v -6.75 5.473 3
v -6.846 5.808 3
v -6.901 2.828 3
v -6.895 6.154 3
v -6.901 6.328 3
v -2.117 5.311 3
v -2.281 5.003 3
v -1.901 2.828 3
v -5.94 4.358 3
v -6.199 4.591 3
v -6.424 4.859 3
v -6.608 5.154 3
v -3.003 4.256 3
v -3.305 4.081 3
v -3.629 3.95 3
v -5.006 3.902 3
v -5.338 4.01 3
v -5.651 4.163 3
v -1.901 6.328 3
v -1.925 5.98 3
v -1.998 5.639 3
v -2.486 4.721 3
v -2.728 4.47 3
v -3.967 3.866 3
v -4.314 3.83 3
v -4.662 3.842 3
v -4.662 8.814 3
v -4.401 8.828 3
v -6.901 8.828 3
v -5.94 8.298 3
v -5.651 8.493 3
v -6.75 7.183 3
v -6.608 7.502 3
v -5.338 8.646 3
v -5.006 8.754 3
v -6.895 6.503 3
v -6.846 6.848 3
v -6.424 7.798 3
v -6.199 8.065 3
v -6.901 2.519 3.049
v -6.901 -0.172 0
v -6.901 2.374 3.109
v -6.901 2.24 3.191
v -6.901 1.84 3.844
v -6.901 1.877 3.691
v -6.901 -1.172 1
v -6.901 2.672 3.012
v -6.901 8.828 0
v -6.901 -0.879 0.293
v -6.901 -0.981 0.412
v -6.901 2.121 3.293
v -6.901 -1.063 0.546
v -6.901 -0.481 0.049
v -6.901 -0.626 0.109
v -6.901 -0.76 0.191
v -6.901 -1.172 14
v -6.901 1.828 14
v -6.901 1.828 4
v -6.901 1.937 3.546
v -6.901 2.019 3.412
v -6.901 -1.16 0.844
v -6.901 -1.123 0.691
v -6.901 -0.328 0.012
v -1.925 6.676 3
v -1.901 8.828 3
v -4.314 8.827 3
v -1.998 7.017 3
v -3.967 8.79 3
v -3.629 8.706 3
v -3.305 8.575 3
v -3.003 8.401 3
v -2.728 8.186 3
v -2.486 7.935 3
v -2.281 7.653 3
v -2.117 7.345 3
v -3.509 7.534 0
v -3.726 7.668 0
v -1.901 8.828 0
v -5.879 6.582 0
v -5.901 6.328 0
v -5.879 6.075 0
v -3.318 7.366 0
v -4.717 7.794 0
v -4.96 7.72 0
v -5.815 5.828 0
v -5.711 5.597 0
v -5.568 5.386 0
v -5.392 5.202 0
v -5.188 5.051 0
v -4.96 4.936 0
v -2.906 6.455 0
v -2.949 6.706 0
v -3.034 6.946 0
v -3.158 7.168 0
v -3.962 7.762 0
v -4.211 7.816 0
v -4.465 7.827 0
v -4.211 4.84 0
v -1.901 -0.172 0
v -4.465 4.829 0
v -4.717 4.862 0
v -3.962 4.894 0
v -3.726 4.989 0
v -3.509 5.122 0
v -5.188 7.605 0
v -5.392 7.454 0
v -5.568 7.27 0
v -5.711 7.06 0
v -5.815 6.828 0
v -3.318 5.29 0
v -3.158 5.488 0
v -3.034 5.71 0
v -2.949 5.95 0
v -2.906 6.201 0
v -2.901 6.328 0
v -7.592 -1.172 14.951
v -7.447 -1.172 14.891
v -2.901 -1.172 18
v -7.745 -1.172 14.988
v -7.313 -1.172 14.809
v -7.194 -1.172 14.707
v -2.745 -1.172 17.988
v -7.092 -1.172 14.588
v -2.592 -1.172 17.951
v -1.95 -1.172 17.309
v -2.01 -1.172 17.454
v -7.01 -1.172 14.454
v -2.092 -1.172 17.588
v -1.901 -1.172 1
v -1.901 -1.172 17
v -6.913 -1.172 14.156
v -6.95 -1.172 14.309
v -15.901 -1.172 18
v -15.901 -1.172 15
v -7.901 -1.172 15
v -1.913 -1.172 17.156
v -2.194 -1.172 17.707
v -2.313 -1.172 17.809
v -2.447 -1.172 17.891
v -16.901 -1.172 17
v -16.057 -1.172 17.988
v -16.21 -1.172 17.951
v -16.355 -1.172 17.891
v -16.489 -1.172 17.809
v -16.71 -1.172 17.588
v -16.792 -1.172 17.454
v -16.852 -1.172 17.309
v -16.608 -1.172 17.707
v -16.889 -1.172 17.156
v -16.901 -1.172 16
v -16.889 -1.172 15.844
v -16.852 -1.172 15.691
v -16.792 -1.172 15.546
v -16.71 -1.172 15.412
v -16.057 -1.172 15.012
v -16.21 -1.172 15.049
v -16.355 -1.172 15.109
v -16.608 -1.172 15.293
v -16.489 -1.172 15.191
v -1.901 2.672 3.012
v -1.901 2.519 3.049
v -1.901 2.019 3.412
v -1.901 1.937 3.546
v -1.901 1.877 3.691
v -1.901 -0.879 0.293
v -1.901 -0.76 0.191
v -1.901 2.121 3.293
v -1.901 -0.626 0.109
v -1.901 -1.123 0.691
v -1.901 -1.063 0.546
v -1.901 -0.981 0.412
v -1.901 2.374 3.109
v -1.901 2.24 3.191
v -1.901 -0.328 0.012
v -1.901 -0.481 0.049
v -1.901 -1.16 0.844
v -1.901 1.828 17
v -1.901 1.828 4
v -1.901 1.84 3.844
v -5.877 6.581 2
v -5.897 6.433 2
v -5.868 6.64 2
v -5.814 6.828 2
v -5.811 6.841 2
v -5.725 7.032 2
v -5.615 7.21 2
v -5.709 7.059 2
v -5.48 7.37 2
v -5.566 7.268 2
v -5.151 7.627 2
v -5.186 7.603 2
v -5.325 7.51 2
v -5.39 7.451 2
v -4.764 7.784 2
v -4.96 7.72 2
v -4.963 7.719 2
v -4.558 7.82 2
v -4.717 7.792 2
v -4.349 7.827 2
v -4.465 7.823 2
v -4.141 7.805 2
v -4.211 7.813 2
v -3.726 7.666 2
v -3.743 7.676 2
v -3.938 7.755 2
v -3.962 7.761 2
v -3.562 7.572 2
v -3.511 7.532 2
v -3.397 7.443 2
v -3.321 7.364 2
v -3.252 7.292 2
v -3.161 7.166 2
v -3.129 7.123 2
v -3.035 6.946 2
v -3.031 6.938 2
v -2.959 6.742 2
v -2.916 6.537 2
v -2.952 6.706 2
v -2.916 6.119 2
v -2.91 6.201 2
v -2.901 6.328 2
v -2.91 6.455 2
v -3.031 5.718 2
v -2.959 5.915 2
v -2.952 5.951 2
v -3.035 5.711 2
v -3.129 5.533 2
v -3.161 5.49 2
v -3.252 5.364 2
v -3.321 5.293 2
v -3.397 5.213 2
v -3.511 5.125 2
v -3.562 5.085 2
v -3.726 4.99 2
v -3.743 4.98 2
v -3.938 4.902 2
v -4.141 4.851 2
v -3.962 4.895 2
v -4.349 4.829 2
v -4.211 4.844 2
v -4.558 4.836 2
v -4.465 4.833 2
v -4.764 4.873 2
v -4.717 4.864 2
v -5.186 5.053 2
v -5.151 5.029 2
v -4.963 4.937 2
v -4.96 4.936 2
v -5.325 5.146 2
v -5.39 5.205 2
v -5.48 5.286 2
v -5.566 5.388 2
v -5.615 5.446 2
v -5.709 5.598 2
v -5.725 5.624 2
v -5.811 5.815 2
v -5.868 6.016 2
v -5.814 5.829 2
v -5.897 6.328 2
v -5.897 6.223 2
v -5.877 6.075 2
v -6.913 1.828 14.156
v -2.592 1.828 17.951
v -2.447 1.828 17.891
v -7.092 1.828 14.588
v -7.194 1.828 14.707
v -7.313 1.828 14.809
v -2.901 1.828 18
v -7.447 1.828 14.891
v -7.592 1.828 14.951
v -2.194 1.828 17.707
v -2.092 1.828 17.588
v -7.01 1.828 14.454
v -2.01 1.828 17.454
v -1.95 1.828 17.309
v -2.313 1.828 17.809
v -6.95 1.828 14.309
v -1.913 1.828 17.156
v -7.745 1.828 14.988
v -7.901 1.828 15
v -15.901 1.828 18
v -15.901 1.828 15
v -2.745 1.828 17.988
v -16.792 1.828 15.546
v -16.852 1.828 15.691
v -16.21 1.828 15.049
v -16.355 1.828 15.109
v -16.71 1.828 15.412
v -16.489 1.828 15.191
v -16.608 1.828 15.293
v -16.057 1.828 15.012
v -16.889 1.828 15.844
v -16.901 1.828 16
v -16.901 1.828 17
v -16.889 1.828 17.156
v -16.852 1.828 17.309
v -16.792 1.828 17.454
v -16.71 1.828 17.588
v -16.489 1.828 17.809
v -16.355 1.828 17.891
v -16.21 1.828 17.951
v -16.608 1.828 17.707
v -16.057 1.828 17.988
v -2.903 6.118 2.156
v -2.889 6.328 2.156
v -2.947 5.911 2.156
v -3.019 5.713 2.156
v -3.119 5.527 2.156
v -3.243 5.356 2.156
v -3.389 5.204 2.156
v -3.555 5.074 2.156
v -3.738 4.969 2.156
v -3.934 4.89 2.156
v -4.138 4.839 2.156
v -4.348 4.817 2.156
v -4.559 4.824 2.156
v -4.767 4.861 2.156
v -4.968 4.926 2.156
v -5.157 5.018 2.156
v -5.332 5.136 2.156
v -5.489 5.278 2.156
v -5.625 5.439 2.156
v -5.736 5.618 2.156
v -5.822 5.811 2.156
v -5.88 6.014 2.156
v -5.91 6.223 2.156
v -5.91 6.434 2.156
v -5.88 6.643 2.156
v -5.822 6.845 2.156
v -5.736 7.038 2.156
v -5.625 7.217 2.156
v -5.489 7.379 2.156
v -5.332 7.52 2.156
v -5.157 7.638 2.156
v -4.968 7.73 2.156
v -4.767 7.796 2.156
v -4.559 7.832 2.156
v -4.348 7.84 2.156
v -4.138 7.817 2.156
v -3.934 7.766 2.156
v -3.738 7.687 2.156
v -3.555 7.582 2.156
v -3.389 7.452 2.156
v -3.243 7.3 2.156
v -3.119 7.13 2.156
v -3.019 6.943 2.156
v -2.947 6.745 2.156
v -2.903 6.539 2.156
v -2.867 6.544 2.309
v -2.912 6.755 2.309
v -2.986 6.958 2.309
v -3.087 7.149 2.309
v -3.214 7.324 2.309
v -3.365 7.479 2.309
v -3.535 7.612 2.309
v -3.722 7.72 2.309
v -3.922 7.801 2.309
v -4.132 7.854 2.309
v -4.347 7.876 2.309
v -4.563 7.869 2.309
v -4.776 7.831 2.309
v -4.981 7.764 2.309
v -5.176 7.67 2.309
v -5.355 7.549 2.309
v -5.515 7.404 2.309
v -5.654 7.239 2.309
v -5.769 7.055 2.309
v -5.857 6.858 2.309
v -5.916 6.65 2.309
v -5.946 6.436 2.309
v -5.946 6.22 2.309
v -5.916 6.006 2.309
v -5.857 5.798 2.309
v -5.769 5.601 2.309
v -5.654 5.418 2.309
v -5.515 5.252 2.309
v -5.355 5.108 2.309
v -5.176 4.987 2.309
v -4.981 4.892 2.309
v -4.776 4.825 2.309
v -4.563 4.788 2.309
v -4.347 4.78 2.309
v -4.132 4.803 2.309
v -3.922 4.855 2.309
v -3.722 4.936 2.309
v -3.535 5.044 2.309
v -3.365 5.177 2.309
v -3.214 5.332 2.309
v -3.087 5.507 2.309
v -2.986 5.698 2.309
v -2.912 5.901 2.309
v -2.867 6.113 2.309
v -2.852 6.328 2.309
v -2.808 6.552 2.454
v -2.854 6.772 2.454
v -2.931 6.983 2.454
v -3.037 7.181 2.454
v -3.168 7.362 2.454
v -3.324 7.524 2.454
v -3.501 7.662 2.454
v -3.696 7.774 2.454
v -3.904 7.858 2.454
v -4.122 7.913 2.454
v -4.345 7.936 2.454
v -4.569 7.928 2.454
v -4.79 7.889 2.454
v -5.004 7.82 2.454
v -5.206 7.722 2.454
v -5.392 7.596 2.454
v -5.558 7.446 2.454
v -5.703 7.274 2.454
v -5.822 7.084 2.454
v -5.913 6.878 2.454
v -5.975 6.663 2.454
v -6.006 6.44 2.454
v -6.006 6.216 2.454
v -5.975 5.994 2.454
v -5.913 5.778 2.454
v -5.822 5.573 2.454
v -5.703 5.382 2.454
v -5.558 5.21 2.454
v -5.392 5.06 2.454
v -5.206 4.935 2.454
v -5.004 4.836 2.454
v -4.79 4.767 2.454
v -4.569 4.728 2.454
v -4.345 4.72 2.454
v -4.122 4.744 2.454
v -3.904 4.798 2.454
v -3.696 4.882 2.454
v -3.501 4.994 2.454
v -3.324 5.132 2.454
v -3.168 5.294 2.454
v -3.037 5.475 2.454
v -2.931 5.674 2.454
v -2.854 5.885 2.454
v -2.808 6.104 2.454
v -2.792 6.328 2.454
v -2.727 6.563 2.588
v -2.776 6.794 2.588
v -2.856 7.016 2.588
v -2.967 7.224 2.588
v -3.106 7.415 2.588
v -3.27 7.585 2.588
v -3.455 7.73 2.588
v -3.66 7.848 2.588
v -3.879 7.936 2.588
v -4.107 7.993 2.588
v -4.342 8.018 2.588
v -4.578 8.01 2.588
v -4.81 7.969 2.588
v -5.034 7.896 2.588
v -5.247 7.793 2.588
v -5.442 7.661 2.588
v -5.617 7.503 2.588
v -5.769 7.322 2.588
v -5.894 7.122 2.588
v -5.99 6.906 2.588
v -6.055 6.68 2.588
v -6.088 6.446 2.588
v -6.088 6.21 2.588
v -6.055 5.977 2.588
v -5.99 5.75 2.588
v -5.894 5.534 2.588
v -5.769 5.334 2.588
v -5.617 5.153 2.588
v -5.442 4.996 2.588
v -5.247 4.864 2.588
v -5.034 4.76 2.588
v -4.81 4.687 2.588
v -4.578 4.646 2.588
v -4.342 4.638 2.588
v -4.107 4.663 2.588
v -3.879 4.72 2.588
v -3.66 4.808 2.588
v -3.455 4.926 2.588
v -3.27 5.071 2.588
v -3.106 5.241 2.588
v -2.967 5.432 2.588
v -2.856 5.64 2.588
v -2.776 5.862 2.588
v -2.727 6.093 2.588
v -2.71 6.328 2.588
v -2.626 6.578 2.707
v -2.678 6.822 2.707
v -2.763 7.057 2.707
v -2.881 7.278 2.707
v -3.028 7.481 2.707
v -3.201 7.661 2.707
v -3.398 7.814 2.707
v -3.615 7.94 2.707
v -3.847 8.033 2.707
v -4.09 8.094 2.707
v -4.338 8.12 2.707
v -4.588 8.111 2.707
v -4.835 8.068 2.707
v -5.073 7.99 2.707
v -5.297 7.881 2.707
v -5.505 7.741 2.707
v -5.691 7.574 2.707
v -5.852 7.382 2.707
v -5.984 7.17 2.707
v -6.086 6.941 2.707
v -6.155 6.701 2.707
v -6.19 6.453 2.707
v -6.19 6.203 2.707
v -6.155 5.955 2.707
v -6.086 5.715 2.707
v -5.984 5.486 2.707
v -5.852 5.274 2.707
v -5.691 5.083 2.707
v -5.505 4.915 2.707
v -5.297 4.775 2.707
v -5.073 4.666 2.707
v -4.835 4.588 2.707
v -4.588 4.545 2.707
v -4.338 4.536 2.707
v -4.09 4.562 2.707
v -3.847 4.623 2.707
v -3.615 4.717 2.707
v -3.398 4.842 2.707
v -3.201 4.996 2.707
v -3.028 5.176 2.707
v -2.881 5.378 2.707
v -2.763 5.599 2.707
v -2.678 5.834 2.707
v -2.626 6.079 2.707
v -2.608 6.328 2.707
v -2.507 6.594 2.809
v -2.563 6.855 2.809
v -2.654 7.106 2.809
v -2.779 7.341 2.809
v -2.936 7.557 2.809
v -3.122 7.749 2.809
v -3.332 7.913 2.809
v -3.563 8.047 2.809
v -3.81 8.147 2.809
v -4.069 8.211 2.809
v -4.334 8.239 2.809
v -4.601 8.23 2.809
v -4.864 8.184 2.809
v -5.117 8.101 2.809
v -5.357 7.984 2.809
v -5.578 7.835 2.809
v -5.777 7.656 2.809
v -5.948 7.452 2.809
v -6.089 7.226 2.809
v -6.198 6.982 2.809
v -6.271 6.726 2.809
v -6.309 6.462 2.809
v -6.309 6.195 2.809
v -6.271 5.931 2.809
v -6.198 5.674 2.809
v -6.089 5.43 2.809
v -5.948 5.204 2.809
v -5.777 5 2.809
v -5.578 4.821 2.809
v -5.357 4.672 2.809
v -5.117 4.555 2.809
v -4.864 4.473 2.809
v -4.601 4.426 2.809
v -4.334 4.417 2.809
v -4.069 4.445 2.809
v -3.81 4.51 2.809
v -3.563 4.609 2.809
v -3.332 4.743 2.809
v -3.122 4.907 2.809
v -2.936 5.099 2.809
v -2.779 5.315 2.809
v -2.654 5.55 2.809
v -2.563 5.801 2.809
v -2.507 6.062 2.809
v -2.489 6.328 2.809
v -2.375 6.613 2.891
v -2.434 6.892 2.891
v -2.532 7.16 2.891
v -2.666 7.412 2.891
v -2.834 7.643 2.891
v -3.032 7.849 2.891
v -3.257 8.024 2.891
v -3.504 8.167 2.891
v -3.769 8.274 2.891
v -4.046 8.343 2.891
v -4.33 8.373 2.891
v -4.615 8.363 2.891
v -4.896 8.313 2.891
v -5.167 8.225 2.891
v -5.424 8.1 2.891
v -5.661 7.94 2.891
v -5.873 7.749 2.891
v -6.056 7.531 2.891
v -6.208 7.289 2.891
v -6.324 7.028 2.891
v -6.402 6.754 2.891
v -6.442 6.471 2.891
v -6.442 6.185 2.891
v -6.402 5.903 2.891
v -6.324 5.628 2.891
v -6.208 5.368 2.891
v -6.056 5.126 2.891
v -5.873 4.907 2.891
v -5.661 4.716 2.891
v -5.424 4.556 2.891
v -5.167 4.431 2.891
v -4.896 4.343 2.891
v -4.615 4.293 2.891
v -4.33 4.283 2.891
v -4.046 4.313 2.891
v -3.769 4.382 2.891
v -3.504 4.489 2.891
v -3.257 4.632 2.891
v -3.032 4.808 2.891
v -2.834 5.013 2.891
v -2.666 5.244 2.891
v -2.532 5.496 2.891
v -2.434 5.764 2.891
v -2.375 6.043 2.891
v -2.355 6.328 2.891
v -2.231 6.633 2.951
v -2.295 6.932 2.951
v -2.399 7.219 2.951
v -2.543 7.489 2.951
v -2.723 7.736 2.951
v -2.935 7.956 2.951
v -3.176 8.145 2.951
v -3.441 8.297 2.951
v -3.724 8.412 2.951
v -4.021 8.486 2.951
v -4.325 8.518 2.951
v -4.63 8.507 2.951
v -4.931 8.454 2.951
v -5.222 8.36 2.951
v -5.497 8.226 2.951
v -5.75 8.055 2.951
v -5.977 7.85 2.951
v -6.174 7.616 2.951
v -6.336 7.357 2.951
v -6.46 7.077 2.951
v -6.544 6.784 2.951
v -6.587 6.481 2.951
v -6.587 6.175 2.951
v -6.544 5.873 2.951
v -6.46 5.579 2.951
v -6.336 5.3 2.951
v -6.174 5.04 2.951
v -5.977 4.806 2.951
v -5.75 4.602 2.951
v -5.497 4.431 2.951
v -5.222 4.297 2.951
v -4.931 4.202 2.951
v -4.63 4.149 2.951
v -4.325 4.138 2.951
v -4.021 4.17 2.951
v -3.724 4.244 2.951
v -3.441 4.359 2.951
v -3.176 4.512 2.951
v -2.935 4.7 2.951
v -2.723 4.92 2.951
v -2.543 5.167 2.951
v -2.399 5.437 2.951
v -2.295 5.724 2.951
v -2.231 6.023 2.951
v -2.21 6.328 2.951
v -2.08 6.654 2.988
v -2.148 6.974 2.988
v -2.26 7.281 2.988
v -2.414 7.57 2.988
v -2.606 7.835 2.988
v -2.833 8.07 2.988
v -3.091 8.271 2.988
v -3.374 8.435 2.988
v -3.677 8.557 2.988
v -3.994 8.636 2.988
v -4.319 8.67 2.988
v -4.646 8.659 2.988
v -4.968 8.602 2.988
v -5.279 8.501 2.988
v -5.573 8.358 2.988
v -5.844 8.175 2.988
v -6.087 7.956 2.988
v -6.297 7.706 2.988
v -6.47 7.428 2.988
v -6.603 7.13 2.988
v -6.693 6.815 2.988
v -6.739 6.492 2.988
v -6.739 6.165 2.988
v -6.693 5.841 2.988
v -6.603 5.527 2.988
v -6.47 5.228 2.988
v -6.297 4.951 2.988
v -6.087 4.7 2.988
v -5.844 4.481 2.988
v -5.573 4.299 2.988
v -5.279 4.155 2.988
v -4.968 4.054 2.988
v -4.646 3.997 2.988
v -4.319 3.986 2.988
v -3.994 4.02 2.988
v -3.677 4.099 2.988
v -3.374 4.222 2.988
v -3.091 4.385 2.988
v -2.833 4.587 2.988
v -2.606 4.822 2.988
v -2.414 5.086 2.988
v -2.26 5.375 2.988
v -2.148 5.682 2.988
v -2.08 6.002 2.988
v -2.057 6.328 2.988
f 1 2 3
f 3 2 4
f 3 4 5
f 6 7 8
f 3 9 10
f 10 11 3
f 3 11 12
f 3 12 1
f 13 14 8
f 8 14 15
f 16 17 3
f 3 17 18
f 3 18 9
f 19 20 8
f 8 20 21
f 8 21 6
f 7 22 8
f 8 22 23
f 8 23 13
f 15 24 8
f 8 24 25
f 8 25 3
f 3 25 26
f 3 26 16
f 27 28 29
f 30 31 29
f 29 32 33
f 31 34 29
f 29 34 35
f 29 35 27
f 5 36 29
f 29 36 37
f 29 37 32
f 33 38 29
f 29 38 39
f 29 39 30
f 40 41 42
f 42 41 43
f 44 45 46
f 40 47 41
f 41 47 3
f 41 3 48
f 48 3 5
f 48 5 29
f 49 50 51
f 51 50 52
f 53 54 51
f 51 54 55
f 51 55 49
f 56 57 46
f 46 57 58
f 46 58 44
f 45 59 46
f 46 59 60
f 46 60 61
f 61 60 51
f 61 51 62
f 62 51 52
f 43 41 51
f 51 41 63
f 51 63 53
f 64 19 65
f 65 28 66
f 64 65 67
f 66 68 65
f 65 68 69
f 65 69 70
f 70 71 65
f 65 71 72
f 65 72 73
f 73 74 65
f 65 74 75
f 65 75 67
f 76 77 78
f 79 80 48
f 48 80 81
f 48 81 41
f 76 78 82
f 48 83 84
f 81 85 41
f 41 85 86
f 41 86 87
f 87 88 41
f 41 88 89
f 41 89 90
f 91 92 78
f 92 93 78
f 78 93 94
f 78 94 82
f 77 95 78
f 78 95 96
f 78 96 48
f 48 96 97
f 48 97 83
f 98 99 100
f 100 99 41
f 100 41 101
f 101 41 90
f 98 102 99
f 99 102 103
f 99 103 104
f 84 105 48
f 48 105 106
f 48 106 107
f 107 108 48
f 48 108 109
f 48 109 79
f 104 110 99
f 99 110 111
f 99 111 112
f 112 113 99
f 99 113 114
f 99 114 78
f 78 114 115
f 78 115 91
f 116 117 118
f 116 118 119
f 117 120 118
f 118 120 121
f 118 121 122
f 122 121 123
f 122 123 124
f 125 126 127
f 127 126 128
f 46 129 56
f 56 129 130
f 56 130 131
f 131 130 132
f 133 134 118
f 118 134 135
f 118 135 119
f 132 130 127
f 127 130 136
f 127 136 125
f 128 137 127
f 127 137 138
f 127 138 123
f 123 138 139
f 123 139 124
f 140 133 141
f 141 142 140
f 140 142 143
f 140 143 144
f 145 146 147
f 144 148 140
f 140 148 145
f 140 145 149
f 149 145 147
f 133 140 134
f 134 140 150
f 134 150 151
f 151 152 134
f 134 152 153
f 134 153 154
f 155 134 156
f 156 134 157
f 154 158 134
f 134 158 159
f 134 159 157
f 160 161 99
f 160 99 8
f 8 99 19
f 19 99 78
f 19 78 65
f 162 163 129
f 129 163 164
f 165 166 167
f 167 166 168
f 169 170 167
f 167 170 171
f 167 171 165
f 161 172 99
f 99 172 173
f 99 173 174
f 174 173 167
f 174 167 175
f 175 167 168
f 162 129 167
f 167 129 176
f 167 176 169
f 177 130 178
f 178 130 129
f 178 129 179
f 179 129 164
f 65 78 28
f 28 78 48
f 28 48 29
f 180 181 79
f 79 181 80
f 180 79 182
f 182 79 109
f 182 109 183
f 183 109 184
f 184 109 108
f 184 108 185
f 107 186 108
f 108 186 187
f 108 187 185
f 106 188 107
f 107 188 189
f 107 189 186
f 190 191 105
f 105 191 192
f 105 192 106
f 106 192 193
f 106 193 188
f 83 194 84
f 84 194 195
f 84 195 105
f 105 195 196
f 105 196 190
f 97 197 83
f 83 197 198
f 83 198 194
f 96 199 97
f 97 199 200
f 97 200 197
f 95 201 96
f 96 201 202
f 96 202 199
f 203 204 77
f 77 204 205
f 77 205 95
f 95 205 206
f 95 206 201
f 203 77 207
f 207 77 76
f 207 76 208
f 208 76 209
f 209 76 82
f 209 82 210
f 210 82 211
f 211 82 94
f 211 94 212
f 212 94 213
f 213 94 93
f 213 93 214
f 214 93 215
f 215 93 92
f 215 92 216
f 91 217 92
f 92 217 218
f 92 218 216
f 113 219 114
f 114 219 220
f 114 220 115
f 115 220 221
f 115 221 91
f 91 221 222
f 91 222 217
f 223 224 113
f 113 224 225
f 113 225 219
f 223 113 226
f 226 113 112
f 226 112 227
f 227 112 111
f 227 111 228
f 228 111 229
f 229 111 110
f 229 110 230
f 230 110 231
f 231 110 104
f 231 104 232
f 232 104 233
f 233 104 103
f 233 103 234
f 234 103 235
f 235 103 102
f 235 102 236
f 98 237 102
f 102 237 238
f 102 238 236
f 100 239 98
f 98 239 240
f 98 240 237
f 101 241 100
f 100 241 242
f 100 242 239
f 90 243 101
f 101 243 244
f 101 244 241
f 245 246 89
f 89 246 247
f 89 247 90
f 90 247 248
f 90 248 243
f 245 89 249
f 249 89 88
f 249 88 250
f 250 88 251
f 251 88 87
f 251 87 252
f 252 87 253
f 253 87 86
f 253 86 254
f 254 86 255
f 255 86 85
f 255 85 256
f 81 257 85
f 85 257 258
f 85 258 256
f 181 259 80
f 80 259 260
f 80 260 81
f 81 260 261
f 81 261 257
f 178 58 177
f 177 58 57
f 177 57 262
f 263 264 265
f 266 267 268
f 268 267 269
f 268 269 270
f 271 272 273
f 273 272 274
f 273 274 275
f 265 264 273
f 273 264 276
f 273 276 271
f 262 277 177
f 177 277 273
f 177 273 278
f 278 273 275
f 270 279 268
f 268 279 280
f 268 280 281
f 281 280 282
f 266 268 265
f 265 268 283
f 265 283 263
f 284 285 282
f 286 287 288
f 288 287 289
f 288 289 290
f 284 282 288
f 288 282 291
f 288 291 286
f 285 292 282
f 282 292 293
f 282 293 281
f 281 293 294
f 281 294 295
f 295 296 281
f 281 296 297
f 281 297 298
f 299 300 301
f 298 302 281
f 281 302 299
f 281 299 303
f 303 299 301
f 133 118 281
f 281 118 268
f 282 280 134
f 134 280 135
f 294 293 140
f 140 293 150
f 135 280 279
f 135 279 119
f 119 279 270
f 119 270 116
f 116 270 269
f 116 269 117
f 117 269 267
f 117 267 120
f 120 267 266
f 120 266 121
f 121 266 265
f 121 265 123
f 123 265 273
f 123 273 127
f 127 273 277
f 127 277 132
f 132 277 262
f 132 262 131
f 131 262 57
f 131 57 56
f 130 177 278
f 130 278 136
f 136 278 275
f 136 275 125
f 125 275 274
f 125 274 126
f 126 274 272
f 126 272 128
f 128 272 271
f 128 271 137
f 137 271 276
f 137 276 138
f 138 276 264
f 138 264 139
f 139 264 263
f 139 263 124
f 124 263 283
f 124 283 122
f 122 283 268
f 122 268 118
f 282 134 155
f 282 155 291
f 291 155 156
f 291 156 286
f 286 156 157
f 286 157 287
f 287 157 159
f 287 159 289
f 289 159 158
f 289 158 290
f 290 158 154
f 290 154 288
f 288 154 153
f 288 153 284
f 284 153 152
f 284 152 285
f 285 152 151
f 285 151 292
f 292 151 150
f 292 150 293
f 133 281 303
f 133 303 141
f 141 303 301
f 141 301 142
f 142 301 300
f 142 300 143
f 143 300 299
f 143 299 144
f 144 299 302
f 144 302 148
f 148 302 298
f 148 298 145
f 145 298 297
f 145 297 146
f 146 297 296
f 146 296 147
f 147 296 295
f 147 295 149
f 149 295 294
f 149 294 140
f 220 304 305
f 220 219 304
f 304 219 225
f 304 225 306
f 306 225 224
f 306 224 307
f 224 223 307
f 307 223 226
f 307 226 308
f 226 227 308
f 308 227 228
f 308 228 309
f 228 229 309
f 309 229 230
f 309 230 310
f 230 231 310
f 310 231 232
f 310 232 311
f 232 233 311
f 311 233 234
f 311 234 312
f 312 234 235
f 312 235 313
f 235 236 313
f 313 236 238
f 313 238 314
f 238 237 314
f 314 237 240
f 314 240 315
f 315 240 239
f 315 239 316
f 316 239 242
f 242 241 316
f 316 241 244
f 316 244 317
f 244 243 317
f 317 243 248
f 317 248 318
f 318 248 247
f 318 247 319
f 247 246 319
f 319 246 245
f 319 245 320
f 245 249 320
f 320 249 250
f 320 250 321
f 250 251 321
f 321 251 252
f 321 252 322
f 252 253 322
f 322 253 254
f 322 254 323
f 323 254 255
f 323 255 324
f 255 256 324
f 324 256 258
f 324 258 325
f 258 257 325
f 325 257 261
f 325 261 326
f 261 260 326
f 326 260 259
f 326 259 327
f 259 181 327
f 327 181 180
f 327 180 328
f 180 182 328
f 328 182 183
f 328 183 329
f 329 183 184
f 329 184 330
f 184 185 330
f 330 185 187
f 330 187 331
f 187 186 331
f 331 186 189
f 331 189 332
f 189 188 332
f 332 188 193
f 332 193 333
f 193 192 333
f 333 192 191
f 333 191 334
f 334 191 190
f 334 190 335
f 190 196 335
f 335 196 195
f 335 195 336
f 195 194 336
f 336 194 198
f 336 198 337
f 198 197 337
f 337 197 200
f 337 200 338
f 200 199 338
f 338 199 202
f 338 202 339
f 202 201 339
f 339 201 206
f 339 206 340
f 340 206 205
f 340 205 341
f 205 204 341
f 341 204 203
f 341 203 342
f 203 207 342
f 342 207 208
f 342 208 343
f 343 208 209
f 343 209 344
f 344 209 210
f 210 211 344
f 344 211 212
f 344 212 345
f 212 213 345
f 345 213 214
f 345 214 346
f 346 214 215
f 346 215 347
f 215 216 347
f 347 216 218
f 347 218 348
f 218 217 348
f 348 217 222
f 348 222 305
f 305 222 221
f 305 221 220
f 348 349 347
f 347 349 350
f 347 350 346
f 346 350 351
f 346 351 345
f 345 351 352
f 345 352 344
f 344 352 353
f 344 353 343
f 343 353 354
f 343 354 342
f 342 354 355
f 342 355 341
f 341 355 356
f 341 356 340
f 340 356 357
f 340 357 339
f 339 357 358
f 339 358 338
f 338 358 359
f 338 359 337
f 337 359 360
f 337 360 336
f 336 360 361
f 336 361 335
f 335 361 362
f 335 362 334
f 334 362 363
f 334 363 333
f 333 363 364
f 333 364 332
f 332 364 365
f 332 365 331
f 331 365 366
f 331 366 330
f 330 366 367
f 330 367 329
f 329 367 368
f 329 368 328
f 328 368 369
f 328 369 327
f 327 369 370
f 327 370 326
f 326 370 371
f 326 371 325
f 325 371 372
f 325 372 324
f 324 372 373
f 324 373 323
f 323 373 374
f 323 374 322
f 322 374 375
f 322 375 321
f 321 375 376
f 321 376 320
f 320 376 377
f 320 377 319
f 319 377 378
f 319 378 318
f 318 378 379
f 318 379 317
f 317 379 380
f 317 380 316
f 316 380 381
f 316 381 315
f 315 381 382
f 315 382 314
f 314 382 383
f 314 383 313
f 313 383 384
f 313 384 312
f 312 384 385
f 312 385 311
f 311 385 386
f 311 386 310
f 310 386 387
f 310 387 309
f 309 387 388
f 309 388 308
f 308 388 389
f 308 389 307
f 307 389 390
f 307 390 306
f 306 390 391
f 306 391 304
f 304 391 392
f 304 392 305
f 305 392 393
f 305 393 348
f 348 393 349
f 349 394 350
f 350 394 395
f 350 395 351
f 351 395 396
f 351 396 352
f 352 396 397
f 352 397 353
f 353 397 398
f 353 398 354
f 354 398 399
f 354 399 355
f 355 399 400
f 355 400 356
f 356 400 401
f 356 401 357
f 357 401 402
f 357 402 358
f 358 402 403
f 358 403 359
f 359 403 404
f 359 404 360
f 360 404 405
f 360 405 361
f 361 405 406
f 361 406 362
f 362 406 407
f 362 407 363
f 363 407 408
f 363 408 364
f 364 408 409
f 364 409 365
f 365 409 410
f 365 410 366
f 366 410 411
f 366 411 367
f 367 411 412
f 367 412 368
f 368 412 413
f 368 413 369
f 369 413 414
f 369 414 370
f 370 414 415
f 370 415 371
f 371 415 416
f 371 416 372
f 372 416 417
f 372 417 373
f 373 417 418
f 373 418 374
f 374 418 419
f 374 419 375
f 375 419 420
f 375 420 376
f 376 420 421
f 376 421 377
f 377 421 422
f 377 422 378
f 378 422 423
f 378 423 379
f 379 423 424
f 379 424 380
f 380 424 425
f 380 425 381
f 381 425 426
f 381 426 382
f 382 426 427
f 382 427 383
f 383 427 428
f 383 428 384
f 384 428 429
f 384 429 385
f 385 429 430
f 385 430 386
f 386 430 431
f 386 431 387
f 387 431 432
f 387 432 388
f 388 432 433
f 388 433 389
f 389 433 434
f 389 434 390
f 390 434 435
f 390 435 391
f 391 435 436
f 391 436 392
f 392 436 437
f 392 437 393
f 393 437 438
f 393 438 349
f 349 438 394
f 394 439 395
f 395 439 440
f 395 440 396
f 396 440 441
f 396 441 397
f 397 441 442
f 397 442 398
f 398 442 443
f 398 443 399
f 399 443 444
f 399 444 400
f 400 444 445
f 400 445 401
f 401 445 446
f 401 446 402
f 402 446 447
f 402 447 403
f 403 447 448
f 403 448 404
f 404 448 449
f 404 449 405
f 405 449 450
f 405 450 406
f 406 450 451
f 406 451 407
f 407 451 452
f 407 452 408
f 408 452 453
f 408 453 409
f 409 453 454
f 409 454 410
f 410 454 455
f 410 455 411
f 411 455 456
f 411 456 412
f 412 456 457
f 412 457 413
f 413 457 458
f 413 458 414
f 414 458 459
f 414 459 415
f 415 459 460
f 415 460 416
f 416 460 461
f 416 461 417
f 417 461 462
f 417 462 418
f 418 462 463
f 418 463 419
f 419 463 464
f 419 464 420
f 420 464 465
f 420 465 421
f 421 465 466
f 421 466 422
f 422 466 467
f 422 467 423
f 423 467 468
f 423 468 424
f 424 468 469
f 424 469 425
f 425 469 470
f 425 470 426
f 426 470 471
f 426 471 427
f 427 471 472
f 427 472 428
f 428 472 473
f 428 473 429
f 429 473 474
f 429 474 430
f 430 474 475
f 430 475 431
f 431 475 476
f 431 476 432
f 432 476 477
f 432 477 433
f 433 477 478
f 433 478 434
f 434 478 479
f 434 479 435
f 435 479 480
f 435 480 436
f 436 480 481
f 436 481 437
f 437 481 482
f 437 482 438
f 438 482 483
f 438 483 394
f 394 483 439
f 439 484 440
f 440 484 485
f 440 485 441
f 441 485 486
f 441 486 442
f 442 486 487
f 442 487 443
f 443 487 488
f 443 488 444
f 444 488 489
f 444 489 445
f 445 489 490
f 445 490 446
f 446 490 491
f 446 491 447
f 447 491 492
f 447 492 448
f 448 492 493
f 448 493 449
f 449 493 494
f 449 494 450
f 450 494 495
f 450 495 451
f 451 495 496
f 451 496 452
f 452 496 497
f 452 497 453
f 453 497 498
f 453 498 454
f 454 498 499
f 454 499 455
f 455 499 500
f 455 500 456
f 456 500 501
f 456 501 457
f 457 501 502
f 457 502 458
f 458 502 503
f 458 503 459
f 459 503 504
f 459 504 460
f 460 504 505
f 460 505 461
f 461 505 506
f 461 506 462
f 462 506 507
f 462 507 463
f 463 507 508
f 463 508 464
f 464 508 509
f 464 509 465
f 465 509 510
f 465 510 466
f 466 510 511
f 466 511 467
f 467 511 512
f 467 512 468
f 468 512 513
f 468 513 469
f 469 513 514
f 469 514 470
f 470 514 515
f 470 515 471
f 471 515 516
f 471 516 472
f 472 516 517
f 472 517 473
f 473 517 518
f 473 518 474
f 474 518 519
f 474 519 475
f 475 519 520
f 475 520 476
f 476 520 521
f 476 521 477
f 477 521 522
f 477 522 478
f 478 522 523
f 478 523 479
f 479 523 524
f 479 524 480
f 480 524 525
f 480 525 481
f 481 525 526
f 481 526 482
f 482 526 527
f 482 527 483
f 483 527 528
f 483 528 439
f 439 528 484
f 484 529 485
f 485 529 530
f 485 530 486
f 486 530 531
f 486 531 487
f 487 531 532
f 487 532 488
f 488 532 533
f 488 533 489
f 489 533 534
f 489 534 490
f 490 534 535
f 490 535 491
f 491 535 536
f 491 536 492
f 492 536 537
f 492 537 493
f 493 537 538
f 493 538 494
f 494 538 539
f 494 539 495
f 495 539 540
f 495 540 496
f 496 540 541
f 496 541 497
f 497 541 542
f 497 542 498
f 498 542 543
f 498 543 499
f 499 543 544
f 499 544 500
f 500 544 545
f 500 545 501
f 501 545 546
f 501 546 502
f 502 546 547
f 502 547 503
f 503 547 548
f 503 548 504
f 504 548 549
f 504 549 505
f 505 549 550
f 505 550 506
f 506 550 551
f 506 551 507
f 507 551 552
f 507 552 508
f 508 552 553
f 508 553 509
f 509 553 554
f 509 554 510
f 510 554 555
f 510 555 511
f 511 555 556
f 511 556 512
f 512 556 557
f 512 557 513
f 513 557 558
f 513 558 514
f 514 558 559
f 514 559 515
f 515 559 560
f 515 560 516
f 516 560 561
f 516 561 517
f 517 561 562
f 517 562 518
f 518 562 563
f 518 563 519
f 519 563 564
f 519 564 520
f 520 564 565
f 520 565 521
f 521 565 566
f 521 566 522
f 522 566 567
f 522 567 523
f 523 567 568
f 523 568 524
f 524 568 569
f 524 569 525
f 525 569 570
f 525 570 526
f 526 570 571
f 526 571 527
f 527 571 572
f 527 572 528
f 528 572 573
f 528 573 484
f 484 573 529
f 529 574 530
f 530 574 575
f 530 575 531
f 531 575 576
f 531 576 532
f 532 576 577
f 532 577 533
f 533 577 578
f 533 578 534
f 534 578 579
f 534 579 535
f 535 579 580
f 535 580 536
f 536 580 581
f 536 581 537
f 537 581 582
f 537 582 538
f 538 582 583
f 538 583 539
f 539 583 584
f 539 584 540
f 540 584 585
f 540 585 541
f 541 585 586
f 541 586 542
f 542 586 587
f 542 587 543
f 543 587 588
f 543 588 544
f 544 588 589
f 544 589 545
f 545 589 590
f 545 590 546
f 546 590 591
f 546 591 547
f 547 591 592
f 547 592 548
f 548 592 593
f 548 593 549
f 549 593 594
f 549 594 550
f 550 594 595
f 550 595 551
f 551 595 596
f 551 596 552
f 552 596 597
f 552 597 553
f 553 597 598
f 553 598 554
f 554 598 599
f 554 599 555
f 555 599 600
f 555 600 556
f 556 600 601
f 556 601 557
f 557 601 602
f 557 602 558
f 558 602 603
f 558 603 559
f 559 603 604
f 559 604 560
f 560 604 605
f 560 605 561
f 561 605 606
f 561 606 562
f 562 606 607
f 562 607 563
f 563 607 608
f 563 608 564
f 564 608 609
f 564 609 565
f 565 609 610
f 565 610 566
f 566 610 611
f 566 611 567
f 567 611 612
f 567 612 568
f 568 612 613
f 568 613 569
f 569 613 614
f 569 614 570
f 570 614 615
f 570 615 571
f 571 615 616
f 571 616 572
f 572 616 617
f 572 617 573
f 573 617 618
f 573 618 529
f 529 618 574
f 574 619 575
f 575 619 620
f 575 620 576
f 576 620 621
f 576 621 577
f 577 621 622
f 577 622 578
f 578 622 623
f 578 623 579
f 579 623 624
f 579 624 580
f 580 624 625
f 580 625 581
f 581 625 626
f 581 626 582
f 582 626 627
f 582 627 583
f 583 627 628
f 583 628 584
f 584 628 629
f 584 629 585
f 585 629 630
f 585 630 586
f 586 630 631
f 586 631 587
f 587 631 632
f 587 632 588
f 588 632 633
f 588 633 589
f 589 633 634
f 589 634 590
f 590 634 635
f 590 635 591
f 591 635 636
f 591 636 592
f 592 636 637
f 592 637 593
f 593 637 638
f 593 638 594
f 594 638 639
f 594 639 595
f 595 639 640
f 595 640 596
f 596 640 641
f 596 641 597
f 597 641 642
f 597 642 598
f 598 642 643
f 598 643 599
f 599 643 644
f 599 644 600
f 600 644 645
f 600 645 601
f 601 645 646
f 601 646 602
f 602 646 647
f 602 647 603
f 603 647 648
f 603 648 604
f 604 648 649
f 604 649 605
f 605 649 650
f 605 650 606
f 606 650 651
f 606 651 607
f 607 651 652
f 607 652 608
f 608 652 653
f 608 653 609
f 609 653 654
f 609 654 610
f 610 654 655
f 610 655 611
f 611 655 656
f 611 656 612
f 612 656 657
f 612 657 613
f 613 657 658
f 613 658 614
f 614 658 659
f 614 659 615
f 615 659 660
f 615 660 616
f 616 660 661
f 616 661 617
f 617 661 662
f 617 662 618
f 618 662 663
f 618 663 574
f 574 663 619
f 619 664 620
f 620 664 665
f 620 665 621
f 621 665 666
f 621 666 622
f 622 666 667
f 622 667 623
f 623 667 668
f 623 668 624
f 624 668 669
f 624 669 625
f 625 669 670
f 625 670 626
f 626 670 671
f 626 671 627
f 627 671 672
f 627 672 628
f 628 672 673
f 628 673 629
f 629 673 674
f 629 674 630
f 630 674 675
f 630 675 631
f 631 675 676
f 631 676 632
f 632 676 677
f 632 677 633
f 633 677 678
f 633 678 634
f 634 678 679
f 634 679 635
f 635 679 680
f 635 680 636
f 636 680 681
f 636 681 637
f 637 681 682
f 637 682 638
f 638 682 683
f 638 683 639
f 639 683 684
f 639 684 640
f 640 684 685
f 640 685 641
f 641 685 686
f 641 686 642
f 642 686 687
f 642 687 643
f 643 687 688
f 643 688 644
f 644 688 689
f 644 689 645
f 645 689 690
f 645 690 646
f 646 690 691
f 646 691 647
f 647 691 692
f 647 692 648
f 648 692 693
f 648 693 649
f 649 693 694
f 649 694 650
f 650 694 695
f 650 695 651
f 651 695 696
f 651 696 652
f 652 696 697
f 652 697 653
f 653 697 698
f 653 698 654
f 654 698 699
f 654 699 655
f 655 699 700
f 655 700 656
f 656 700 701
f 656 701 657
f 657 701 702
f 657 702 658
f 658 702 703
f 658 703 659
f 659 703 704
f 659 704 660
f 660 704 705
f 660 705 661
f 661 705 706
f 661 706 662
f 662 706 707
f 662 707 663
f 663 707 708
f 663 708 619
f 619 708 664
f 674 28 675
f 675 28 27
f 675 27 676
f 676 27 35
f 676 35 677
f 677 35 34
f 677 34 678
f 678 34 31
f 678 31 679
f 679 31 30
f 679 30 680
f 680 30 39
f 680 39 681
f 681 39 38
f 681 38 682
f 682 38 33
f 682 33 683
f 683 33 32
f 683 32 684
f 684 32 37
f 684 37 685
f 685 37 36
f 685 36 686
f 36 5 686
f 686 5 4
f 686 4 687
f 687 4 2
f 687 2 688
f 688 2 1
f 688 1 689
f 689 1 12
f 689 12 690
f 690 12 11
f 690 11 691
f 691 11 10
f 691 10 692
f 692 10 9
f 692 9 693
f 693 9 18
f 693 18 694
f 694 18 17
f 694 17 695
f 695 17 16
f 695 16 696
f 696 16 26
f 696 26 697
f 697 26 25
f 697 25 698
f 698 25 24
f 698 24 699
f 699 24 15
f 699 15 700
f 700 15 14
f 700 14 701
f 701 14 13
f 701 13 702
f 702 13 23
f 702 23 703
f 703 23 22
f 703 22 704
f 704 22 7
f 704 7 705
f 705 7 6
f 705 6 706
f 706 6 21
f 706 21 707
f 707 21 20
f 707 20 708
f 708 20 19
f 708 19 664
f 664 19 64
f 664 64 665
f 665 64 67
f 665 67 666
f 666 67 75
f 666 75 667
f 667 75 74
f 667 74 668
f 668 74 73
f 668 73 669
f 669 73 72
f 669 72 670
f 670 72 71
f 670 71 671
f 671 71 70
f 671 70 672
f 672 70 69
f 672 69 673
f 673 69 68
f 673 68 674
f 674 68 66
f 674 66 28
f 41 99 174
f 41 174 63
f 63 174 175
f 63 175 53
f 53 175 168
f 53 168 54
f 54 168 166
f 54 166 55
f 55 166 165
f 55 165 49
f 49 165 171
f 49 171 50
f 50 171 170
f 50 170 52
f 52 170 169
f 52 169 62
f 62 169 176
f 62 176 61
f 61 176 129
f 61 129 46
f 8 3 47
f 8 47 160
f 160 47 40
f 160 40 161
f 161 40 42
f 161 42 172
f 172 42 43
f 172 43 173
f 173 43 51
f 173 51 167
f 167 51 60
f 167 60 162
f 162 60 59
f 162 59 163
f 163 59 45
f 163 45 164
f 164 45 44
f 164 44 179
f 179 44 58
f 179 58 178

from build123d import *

# Parameters (mm, degrees)
SKETCH1_W           = 5
SKETCH1_H           = 10
SKETCH1_R           = 1.5
BOSS_EXTRUDE1_DEPTH = 3
SKETCH2_W           = 5
SKETCH2_H           = 3
BOSS_EXTRUDE2_DEPTH = 15
SKETCH3_W           = 3
SKETCH3_H           = 3
BOSS_EXTRUDE3_DEPTH = 10
FILLET1_R           = 1
FILLET2_R           = 1
FILLET3_R           = 1
FILLET4_R           = 1
FILLET5_R           = 1
FILLET6_R           = 1
FILLET7_R           = 1


with BuildPart() as part:
    # Sketch1 → Boss-Extrude1 (new body)
    with BuildSketch(Plane.XY):
        with Locations((-4.401041667, 3.828125)):
            Rectangle(SKETCH1_W, SKETCH1_H)
        with Locations((-4.401041667, 6.328125)):
            Circle(SKETCH1_R, mode=Mode.SUBTRACT)
    extrude(amount=BOSS_EXTRUDE1_DEPTH)

    # Sketch2 → Boss-Extrude2 (add)
    with BuildSketch(Plane.XY.offset(3)):
        with Locations((-4.401041667, 0.328125)):
            Rectangle(SKETCH2_W, SKETCH2_H)
    extrude(amount=BOSS_EXTRUDE2_DEPTH)

    # Sketch3 → Boss-Extrude3 (add)
    with BuildSketch(Plane.ZY.offset(6.901041667)):
        with Locations((16.5, 0.328125)):
            Rectangle(SKETCH3_W, SKETCH3_H)
    extrude(amount=BOSS_EXTRUDE3_DEPTH)

    # Fillet1
    fillet1_edges = [part.edges().sort_by_distance(p)[0] for p in [
        (-6.901041667, 0.328125, 15),
    ]]
    fillet(fillet1_edges, radius=FILLET1_R)

    # Fillet2
    fillet2_edges = [part.edges().sort_by_distance(p)[0] for p in [
        (-1.901041667, 0.328125, 18),
    ]]
    fillet(fillet2_edges, radius=FILLET2_R)

    # Fillet3
    fillet3_edges = [part.edges().sort_by_distance(p)[0] for p in [
        (-16.901041667, 0.328125, 15),
    ]]
    fillet(fillet3_edges, radius=FILLET3_R)

    # Fillet4
    fillet4_edges = [part.edges().sort_by_distance(p)[0] for p in [
        (-16.901041667, 0.328125, 18),
    ]]
    fillet(fillet4_edges, radius=FILLET4_R)

    # Fillet5
    fillet5_edges = [part.edges().sort_by_distance(p)[0] for p in [
        (-5.901041667, 6.328125, 3),
    ]]
    fillet(fillet5_edges, radius=FILLET5_R - 0.0001)  # a hair under: the kernel refuses the full size

    # Fillet6
    fillet6_edges = [part.edges().sort_by_distance(p)[0] for p in [
        (-4.401041667, -1.171875, 0),
    ]]
    fillet(fillet6_edges, radius=FILLET6_R)

    # Fillet7
    fillet7_edges = [part.edges().sort_by_distance(p)[0] for p in [
        (-4.401041667, 1.828125, 3),
    ]]
    fillet(fillet7_edges, radius=FILLET7_R)


solid = part.part
